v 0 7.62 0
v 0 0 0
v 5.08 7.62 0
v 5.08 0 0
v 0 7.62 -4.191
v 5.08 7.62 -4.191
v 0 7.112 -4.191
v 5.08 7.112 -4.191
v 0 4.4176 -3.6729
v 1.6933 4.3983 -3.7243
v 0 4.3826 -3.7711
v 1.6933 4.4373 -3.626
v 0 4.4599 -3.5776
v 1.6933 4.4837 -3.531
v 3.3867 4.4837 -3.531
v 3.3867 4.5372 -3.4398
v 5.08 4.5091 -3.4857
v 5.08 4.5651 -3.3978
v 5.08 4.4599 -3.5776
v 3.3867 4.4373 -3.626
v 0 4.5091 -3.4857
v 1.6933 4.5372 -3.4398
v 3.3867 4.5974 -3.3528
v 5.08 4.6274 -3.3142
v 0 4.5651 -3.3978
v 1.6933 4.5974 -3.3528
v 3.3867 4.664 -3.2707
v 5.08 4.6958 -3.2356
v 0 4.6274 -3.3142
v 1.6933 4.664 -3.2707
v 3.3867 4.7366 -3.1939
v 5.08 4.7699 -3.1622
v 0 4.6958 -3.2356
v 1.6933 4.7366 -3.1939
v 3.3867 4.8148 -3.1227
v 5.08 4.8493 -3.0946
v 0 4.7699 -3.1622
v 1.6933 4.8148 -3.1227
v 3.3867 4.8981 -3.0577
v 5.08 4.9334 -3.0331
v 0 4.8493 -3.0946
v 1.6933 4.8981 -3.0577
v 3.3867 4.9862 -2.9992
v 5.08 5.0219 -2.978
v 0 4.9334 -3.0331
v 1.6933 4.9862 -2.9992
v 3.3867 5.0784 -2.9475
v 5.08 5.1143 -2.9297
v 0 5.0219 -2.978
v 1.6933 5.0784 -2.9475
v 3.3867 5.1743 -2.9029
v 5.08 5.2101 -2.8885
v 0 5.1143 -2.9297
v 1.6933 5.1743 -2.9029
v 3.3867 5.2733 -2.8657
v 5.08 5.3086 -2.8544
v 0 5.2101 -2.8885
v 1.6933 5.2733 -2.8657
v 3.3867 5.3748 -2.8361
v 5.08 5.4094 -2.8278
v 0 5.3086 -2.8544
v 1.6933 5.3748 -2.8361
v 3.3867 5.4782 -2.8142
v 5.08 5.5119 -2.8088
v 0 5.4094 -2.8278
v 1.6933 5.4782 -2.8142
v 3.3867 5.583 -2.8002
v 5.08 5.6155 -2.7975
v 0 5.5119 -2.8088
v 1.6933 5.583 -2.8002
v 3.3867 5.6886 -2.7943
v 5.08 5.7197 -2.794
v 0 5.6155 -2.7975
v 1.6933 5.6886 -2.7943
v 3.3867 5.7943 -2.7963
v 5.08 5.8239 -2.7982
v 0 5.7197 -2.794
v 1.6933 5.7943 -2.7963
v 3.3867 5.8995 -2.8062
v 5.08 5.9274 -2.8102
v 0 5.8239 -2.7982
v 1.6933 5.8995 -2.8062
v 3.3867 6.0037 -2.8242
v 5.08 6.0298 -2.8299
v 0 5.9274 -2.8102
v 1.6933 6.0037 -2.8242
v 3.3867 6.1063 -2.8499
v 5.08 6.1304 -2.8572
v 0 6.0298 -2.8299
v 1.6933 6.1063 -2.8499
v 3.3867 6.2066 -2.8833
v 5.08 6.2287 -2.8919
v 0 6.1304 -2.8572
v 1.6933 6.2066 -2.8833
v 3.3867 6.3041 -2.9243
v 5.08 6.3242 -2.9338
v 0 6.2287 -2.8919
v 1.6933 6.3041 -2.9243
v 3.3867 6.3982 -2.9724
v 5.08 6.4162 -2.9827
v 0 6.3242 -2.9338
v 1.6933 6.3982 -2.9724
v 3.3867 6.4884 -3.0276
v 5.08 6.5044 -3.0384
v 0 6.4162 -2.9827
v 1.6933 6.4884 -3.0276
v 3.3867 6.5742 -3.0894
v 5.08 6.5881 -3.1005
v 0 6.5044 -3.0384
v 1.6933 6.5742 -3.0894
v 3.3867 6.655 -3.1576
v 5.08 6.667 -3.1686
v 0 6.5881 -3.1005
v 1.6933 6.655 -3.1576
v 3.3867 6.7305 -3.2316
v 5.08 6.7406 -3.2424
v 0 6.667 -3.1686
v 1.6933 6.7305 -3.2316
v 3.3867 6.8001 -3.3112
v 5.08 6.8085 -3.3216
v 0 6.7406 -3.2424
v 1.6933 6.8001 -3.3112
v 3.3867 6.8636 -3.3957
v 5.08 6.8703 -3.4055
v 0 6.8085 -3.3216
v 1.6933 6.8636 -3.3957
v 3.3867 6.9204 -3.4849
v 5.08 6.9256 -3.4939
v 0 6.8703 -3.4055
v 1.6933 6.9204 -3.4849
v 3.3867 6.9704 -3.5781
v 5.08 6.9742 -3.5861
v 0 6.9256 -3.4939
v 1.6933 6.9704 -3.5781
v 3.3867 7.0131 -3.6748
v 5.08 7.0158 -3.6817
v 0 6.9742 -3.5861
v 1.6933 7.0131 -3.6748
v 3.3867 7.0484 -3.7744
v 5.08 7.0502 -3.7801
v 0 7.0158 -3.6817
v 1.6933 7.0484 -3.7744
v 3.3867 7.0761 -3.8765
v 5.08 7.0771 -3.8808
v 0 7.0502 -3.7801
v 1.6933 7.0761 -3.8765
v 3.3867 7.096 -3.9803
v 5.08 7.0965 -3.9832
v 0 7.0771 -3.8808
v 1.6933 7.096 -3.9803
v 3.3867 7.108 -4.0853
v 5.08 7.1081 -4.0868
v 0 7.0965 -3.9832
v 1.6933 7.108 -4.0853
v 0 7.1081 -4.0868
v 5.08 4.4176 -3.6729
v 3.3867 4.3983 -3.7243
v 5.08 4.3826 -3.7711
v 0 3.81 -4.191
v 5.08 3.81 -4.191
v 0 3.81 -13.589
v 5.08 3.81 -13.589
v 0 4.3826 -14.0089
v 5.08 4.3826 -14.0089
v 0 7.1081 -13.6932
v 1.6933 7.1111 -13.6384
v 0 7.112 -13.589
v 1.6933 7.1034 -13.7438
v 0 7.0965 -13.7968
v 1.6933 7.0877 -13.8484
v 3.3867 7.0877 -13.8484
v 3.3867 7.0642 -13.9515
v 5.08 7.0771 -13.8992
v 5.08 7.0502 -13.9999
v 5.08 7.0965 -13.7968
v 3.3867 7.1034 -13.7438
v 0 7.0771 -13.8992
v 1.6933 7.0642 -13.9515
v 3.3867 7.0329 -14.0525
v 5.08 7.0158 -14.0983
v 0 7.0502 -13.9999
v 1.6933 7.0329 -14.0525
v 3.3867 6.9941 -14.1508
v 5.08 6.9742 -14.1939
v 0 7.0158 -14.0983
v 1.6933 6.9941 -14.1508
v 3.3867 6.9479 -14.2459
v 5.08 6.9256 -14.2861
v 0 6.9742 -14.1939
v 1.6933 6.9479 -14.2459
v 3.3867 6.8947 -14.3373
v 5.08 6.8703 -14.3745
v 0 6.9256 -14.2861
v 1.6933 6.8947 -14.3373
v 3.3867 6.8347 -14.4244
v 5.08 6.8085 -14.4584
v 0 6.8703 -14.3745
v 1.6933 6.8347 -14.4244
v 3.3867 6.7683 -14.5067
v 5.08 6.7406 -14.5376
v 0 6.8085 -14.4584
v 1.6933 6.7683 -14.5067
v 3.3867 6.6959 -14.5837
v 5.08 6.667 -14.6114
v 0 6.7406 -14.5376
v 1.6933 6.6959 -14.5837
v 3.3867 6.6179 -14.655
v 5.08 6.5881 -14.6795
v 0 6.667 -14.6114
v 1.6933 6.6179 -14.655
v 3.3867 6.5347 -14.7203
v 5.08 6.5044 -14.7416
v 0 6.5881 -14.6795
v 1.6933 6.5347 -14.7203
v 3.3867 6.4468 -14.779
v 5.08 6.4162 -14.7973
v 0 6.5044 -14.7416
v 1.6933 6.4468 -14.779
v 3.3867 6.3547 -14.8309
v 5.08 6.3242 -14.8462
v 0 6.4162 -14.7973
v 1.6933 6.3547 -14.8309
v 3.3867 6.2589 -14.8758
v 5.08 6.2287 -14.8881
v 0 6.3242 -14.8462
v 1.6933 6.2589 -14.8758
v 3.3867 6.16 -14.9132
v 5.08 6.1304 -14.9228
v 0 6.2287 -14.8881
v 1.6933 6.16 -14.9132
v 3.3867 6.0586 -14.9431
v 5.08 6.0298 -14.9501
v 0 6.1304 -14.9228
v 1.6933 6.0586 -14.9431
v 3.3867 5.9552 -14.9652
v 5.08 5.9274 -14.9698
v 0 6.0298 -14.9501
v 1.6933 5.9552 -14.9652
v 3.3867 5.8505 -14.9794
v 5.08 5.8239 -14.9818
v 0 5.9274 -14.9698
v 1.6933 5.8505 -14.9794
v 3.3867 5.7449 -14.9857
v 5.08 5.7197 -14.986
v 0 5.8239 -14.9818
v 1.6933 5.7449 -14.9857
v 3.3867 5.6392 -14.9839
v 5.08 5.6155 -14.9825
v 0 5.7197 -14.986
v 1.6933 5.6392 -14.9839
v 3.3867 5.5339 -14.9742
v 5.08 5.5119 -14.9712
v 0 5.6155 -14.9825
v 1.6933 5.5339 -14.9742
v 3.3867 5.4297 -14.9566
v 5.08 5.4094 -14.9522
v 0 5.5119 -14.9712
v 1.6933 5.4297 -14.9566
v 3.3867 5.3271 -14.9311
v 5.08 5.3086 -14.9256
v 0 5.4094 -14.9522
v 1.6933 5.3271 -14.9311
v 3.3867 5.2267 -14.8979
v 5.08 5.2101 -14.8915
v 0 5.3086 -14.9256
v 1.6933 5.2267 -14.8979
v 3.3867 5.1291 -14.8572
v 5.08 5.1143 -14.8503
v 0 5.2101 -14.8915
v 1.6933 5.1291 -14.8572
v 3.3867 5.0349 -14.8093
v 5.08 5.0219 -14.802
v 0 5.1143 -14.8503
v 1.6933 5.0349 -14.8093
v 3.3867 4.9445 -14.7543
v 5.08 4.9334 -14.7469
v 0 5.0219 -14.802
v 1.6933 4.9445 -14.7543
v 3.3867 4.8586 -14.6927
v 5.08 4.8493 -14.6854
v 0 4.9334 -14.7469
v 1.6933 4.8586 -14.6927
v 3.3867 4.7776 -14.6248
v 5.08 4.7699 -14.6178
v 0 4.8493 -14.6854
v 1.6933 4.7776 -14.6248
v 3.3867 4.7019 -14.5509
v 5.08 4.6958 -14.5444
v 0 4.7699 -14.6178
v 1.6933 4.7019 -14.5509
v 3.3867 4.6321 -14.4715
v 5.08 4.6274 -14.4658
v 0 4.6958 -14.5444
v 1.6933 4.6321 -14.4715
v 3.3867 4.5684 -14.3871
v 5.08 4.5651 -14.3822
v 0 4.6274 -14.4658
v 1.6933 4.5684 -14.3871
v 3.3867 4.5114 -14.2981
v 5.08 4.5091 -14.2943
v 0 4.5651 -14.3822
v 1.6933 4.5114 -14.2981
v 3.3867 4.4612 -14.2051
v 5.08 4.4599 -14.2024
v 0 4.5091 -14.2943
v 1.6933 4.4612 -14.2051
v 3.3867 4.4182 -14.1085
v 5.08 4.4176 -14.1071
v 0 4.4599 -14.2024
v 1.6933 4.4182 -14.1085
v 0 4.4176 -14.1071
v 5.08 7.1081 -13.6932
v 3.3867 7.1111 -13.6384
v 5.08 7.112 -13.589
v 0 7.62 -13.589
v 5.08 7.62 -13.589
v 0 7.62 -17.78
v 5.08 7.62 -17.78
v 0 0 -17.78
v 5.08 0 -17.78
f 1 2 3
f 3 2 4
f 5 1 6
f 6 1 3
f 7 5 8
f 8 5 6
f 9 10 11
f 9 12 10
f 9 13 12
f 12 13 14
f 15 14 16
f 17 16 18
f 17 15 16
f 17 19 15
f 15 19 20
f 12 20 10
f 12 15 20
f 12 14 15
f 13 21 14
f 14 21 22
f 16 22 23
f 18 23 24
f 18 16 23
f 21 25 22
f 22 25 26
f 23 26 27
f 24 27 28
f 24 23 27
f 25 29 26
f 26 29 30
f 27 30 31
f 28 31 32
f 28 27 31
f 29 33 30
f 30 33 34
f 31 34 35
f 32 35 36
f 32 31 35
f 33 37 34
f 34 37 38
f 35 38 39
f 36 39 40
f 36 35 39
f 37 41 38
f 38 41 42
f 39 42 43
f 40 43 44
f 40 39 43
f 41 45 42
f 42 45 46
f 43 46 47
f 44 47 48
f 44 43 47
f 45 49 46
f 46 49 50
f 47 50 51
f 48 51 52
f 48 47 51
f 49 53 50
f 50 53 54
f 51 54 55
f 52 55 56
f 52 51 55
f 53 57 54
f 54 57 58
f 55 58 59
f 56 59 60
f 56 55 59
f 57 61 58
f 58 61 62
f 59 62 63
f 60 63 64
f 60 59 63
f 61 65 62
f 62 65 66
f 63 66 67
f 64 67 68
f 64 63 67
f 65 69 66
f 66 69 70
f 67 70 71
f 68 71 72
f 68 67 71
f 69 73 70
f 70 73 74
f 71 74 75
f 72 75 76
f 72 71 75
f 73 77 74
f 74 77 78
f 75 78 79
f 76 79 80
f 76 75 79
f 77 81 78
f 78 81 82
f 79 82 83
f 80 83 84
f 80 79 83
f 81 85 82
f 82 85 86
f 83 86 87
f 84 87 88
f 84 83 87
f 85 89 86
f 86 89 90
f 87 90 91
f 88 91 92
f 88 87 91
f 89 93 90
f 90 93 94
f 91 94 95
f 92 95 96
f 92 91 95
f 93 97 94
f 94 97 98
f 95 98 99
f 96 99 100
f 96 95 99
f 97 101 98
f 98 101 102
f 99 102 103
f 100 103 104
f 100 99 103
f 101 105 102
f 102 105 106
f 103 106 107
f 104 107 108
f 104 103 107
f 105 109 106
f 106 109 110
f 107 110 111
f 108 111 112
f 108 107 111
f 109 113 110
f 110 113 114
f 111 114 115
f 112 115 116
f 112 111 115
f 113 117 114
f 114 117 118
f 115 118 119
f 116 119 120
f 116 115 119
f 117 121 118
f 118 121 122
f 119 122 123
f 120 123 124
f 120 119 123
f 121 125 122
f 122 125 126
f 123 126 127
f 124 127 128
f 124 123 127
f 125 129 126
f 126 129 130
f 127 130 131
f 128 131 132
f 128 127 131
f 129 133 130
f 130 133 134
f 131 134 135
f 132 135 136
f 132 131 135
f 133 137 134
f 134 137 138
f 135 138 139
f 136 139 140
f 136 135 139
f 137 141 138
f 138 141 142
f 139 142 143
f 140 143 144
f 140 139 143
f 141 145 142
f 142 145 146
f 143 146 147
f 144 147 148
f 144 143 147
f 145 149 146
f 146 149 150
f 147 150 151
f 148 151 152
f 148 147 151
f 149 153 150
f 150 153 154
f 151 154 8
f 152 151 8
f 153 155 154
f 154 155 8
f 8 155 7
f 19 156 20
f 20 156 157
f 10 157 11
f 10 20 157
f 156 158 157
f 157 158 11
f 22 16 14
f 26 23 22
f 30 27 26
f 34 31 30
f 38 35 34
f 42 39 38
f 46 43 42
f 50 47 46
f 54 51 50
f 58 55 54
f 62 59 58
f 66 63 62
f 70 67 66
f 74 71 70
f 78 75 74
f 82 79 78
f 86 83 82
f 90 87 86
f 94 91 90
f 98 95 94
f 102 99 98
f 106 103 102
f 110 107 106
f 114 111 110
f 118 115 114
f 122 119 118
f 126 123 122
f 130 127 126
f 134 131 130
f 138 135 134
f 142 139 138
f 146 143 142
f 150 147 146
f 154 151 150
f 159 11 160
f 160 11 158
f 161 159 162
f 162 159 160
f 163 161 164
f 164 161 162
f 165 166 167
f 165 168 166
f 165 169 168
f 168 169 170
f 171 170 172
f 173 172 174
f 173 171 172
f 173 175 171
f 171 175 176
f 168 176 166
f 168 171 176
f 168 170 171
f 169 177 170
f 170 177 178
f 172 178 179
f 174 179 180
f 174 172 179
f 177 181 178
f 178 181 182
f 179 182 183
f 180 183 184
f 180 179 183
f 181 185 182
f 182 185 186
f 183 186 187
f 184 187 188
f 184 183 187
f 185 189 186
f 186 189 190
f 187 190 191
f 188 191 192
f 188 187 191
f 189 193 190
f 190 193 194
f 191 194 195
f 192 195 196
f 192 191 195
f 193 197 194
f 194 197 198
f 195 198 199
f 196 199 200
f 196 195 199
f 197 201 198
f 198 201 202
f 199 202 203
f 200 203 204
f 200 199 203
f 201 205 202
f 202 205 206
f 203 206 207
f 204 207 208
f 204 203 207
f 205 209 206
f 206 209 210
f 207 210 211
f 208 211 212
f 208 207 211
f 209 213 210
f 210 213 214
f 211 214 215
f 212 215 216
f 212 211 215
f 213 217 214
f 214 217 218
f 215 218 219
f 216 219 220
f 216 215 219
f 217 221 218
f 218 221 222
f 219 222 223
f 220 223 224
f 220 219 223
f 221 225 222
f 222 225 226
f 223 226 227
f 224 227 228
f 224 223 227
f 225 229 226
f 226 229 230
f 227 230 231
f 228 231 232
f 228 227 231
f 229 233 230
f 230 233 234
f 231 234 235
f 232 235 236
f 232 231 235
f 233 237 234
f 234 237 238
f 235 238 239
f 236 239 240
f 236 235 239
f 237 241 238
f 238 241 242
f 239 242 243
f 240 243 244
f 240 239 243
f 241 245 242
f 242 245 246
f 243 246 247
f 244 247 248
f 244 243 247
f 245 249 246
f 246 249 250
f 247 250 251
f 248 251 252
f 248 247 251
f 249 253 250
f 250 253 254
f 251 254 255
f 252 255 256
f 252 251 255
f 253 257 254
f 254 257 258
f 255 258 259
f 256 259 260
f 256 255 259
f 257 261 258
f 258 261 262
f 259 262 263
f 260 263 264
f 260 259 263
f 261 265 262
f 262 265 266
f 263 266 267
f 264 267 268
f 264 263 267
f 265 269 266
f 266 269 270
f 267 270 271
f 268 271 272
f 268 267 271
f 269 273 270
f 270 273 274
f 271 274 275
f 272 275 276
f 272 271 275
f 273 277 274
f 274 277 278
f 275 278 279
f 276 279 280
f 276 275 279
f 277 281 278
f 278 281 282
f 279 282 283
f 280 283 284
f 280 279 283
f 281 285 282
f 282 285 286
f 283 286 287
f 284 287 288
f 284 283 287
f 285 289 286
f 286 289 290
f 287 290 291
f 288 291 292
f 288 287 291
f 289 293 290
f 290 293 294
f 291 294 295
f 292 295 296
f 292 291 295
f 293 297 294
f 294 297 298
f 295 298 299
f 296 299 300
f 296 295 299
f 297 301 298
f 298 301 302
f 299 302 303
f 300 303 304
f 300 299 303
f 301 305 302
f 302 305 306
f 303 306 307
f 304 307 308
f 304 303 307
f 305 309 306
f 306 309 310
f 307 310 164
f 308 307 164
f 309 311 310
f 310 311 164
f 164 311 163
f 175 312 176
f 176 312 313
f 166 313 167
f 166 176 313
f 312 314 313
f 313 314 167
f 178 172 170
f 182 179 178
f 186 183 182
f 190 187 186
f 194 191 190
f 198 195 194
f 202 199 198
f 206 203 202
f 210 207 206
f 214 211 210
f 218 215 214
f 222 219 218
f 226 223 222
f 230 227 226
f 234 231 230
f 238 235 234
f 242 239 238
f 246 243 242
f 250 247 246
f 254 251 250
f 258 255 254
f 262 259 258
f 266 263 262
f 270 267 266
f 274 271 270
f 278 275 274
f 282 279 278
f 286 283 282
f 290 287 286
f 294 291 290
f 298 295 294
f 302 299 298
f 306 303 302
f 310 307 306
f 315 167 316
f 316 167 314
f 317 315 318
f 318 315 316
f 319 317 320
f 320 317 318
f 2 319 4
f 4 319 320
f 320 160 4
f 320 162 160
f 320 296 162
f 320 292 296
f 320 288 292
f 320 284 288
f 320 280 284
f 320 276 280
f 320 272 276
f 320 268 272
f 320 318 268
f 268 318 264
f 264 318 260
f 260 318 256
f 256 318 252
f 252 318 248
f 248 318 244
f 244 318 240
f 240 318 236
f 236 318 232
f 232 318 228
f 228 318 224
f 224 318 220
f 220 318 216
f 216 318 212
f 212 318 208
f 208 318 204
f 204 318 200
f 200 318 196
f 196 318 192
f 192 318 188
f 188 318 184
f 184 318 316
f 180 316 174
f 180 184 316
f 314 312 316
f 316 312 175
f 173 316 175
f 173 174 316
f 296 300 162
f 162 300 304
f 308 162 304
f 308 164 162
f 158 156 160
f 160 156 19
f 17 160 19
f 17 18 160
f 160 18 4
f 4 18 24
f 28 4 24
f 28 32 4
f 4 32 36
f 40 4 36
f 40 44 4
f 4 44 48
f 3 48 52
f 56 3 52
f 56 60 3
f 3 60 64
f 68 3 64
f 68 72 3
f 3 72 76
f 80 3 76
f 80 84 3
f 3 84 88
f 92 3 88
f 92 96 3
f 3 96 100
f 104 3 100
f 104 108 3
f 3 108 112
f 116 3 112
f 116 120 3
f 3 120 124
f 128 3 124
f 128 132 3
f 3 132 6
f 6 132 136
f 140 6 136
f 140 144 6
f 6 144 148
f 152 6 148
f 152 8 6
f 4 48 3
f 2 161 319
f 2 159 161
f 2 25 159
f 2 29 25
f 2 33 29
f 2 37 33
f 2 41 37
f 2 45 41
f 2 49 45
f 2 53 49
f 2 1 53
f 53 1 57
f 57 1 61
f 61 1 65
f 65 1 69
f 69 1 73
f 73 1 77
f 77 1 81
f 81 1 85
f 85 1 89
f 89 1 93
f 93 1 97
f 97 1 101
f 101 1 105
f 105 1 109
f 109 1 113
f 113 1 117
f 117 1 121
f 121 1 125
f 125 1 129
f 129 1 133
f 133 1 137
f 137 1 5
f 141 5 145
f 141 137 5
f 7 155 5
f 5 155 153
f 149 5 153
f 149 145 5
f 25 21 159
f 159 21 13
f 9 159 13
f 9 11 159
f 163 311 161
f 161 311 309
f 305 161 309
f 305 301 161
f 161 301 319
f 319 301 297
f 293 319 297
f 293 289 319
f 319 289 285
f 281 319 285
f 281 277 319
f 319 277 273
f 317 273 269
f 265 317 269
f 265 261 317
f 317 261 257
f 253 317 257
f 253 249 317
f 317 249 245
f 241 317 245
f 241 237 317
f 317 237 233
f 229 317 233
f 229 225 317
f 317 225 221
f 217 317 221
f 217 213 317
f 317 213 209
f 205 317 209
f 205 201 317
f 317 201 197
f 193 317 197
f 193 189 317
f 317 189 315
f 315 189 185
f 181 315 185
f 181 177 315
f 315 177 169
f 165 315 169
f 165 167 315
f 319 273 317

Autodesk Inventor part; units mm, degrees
ref_plane "YZ Plane" through (0, 0, 0) normal (1, 0, 0) x (0, 1, 0)
ref_plane "XZ Plane" through (0, 0, 0) normal (0, 1, 0) x (-1, 0, 0)
ref_plane "XY Plane" through (0, 0, 0) normal (0, 0, 1) x (1, 0, 0)
sketch "Sketch1" plane through (0, 0, 0) normal (1, 0, 0) x (0, 1, 0)
  line L0 (0, 0) -> (0, -17.78)
  line L1 (0, -17.78) -> (7.62, -17.78)
  line L2 (7.62, -17.78) -> (7.62, -14.986)
  line L3 (0, 0) -> (7.62, 0)
  line L4 (7.62, 0) -> (7.62, -2.794)
  line L5 (3.81, -13.589) -> (3.81, -4.191)
  arc A0 (7.112, -4.191) -> (4.3826, -3.7711) centre (5.715, -4.191) ccw
  arc A1 (4.3826, -14.0089) -> (7.112, -13.589) centre (5.715, -13.589) ccw
  line L6 (7.62, -2.794) -> (7.62, -4.191)
  line L7 (7.62, -4.191) -> (7.112, -4.191)
  line L8 (7.62, -14.986) -> (7.62, -13.589)
  line L9 (7.62, -13.589) -> (7.112, -13.589)
  line L10 (3.81, -4.191) -> (4.3826, -3.7711)
  line L11 (3.81, -13.589) -> (4.3826, -14.0089)
  dimension "d3" = 17.78
  dimension "d4" = 7.62
  dimension "d6" = 2.794
extrude "Extrusion1" add sketch "Sketch1" along normal blind 5.08
equation "\"d6\" = d5"
equation "\"d5\" = 2.794"
properties part number "led_clip"
